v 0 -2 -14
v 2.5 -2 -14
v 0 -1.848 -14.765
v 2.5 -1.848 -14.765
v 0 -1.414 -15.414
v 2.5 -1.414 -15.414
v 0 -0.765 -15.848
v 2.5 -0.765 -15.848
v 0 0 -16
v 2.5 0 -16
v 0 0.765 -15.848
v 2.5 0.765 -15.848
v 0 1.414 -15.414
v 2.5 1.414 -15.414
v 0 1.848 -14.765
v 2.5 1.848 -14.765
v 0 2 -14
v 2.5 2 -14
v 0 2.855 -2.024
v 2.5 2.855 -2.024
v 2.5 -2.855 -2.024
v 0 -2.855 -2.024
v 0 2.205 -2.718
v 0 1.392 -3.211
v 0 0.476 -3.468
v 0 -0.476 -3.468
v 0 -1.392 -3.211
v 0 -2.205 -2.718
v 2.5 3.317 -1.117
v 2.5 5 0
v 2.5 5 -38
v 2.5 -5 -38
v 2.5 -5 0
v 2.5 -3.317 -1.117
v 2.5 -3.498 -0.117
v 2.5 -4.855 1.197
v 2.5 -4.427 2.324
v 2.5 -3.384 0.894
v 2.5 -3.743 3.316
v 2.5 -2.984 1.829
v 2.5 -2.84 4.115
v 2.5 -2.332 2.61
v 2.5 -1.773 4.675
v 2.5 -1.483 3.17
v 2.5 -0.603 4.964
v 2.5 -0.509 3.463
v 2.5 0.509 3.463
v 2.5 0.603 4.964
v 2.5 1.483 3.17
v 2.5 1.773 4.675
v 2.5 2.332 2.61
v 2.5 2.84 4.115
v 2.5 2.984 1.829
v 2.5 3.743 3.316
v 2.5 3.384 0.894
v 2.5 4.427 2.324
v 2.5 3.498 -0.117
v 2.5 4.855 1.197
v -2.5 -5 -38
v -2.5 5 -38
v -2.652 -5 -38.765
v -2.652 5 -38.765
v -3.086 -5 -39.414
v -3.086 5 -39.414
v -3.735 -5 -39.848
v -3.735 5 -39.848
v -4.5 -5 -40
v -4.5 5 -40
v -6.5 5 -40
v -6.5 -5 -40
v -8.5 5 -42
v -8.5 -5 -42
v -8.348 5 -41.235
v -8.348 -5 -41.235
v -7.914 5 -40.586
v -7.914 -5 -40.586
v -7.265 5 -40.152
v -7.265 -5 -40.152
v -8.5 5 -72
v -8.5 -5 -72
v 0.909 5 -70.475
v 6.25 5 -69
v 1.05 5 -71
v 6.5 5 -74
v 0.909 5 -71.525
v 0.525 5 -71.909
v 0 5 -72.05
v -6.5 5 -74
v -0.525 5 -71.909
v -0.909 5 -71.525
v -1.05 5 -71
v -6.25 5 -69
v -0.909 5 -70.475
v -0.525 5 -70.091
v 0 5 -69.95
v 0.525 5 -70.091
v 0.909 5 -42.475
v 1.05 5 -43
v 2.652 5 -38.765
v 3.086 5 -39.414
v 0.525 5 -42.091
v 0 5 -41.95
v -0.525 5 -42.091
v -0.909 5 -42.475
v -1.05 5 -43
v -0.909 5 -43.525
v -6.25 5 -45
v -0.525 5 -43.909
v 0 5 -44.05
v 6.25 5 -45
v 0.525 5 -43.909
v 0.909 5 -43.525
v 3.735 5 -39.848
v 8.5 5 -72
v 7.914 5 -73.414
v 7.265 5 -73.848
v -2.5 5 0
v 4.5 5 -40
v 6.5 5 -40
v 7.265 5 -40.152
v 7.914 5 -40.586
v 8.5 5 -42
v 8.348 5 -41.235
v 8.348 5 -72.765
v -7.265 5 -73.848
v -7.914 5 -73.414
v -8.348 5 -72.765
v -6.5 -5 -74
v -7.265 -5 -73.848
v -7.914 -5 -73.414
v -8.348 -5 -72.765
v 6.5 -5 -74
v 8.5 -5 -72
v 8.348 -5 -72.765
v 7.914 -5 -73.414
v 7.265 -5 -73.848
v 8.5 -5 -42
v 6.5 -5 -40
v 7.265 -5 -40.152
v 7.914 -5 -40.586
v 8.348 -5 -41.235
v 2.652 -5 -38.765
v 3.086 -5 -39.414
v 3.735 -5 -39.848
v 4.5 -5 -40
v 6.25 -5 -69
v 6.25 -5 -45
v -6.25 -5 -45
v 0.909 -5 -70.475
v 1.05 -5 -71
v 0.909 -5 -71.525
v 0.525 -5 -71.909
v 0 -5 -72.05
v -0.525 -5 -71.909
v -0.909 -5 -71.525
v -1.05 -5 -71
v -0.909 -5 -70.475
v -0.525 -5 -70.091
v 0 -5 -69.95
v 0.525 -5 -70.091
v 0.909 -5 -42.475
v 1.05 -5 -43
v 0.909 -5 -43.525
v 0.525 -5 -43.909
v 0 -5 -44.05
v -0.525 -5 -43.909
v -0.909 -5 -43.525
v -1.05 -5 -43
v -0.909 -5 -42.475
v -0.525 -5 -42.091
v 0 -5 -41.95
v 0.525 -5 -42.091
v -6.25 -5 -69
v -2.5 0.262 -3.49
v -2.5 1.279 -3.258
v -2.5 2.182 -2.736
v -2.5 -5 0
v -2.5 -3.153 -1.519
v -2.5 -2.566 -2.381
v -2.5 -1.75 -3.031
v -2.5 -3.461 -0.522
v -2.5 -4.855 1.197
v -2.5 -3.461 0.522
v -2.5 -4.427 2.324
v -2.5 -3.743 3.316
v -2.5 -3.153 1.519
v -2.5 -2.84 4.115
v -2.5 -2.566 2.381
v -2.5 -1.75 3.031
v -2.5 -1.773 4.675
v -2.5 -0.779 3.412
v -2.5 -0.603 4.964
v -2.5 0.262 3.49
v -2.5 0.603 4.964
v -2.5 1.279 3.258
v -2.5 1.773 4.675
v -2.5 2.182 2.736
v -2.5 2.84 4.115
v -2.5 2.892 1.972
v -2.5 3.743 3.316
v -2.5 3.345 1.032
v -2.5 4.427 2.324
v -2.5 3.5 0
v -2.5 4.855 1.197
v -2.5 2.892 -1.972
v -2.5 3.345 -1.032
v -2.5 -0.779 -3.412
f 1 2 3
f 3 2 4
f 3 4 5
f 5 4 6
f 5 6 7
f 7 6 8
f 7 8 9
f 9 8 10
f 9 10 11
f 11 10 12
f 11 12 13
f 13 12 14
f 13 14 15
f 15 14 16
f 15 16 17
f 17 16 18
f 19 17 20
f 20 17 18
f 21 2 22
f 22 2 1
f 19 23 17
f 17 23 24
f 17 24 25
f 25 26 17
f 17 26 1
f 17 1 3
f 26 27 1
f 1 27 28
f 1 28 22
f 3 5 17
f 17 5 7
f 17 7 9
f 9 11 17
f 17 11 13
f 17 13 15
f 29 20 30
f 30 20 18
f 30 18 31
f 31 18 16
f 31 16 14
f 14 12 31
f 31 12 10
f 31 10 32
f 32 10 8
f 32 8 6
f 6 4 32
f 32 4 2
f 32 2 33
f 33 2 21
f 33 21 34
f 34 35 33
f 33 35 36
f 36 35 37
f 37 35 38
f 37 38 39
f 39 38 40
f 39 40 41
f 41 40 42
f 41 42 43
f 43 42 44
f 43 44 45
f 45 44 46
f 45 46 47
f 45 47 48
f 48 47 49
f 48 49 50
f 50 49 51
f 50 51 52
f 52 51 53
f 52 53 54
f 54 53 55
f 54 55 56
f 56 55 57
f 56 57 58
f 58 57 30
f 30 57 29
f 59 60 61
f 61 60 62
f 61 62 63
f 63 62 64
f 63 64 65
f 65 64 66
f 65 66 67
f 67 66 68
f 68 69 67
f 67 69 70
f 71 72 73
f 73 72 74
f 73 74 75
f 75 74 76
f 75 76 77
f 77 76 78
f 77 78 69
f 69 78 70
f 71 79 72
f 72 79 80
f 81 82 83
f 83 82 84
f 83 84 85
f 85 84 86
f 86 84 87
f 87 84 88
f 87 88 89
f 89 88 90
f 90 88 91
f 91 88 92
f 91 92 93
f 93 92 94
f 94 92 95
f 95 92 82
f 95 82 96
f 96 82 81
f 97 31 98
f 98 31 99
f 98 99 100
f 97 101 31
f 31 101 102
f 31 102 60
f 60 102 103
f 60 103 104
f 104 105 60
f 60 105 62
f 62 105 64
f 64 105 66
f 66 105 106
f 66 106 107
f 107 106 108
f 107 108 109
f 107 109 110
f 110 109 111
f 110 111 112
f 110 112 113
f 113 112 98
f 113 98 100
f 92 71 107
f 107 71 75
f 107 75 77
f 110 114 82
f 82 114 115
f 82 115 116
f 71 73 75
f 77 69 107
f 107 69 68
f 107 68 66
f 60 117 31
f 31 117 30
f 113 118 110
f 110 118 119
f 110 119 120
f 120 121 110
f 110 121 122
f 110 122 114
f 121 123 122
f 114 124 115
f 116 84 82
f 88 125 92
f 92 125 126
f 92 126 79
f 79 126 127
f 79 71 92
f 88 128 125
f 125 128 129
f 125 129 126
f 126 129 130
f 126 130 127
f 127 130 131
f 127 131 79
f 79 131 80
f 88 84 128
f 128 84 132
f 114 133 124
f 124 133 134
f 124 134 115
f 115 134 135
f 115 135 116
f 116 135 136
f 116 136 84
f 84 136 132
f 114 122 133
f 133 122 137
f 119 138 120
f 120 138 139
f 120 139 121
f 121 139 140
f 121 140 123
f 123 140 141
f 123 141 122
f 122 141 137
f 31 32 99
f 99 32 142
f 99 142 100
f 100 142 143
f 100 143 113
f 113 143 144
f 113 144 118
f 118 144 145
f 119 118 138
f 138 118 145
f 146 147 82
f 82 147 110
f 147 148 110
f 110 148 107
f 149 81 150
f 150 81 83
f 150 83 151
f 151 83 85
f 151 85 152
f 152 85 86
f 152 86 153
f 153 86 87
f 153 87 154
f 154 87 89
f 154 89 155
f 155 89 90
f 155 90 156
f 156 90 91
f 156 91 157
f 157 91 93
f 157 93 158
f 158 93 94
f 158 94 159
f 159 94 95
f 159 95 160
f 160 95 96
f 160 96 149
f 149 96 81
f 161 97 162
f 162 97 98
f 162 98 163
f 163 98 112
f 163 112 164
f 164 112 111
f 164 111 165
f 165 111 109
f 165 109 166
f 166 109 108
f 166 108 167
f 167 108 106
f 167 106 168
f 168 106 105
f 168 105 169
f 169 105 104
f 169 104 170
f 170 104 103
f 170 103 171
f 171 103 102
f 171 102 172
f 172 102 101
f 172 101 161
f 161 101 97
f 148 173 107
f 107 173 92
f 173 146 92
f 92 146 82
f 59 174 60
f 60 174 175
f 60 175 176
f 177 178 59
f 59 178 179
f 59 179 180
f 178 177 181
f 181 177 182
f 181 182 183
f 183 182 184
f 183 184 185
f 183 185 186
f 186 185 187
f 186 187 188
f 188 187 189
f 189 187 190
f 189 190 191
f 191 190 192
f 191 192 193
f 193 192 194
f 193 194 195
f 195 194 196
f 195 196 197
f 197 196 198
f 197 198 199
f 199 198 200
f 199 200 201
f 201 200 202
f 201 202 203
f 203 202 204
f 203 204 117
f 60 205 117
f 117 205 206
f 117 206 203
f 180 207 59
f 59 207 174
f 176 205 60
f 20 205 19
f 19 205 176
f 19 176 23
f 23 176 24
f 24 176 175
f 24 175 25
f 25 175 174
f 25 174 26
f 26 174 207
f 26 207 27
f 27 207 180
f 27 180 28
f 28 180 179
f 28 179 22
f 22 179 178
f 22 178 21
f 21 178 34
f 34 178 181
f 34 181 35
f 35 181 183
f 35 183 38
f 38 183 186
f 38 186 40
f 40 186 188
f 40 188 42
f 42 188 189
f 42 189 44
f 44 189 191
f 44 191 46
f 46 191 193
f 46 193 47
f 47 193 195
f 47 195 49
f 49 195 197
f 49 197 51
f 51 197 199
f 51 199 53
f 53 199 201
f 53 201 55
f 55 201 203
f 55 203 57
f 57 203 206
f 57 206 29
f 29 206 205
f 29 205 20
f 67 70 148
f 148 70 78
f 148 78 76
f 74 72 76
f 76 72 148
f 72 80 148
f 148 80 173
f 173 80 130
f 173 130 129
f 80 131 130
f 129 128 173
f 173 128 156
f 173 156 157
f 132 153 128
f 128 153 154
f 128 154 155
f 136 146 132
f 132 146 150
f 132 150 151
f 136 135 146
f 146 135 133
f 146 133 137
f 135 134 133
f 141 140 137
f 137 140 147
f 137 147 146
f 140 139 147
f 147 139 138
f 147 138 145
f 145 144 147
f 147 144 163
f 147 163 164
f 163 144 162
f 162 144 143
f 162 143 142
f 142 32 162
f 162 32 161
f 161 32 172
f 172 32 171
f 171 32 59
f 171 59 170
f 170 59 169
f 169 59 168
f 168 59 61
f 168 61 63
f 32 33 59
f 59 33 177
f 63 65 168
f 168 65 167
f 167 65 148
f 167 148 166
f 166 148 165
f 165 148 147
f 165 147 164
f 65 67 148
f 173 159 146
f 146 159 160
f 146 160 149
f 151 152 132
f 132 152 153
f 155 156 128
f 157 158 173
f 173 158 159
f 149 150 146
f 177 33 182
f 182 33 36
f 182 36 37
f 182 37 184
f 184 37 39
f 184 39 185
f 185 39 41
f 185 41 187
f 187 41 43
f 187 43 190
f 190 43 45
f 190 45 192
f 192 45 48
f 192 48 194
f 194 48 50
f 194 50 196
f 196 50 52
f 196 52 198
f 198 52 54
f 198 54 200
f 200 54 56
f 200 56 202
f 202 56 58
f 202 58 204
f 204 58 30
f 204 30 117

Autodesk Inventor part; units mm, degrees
ref_plane "YZ Plane" through (0, 0, 0) normal (1, 0, 0) x (0, 1, 0)
ref_plane "XZ Plane" through (0, 0, 0) normal (0, 1, 0) x (-1, 0, 0)
ref_plane "XY Plane" through (0, 0, 0) normal (0, 0, 1) x (1, 0, 0)
sketch "Sketch2" plane through (0, 0, 0) normal (1, 0, 0) x (0, 1, 0)
  circle A0 centre (0, 0) radius 3.5
  line L0 (5, 0) -> (5, -40)
  line L1 (5, -40) -> (-5, -40)
  line L2 (-5, -40) -> (-5, 0)
  line L3 (-5, 0) -> (5, 0) construction
  arc A1 (5, 0) -> (-5, 0) centre (0, 0) ccw
  line L4 (0, 0) -> (5, 0) construction
  line L5 (0, 0) -> (0, 5) construction
  line L6 (0, 0) -> (-5, 0) construction
  point P0 (-5, 0)
  dimension "d1" = 7
  dimension "d2" = 5
  dimension "d3" = 90
  dimension "d4" = 180
  dimension "d11" = 40
extrude "Extrusion1" add sketch "Sketch2" along normal mid plane 5
sketch "Sketch4" plane through (-2.5, 5, 0) normal (0, 1, 0) x (1, 0, 0)
  line L0 (2.5, 89.8) -> (2.5, -20.8) projected
  line L1 (-9.4, 0) -> (14.4, 0) projected
  line L2 (-6, 74) -> (11, 74)
  line L3 (11, 74) -> (11, 40)
  line L4 (11, 40) -> (-6, 40)
  line L5 (-6, 40) -> (-6, 74)
  line L6 (-6, 57) -> (11, 57) construction
  line L7 (-3.75, 69) -> (8.75, 69)
  line L8 (8.75, 69) -> (8.75, 45)
  line L9 (8.75, 45) -> (-3.75, 45)
  line L10 (-3.75, 45) -> (-3.75, 69)
  line L11 (-3.75, 69) -> (8.75, 45) construction
  line L12 (8.75, 69) -> (-3.75, 45) construction
  line L13 (5, 40) -> (0, 40) projected
  line L14 (2.5, 71) -> (2.5, 43) construction
  circle A0 centre (2.5, 71) radius 1.05
  circle A1 centre (2.5, 43) radius 1.05
  point P0 (2.5, 0)
  point P1 (2.5, 57)
  point P2 (2.5, 40)
  point P3 (2.5, 57)
  dimension "d18" = 34
  dimension "d19" = 17
  dimension "d20" = 12.5
  dimension "d21" = 24
  dimension "d22" = 2.1
  dimension "d23" = 28
extrude "Extrusion3" add sketch "Sketch4" against normal up to surface (10 mm away) contours L2 L3 L4 L0 A1 L9 L8 L7 A0 | L0 A0 L7 L10 L9 A1 L4 L5 L2
sketch "Sketch5" plane through (2.5, 0, 0) normal (1, 0, 0) x (0, 0, -1)
  circle A0 centre (0, 0) radius 3
  arc A1 (14, -2) -> (14, 2) centre (14, 0) ccw
  line L0 (14, 0) -> (14, 2) construction
  line L1 (14, 0) -> (16, 0) construction
  line L2 (14, 0) -> (14, -2) construction
  line L3 (0, 11.9) -> (0, -11.9)
  line L4 (14, 2) -> (0, 3)
  line L5 (14, -2) -> (0, -3)
  point P0 (0.4264, -2.9695)
  point P1 (0.4264, 2.9695)
  dimension "d27" = 6
  dimension "d28" = 90
  dimension "d29" = 180
  dimension "d30" = 14
  dimension "d31" = 2
fillet "Fillet1" radius 2 6 edges at (2.5, 0, -40) (8.5, 0, -40) (8.5, 0, -74) (-8.5, 0, -74) (-8.5, 0, -40) (-2.5, 0, -40)
extrude "Extrusion4" cut sketch "Sketch5" against normal blind 2.5
properties part number "link3"
